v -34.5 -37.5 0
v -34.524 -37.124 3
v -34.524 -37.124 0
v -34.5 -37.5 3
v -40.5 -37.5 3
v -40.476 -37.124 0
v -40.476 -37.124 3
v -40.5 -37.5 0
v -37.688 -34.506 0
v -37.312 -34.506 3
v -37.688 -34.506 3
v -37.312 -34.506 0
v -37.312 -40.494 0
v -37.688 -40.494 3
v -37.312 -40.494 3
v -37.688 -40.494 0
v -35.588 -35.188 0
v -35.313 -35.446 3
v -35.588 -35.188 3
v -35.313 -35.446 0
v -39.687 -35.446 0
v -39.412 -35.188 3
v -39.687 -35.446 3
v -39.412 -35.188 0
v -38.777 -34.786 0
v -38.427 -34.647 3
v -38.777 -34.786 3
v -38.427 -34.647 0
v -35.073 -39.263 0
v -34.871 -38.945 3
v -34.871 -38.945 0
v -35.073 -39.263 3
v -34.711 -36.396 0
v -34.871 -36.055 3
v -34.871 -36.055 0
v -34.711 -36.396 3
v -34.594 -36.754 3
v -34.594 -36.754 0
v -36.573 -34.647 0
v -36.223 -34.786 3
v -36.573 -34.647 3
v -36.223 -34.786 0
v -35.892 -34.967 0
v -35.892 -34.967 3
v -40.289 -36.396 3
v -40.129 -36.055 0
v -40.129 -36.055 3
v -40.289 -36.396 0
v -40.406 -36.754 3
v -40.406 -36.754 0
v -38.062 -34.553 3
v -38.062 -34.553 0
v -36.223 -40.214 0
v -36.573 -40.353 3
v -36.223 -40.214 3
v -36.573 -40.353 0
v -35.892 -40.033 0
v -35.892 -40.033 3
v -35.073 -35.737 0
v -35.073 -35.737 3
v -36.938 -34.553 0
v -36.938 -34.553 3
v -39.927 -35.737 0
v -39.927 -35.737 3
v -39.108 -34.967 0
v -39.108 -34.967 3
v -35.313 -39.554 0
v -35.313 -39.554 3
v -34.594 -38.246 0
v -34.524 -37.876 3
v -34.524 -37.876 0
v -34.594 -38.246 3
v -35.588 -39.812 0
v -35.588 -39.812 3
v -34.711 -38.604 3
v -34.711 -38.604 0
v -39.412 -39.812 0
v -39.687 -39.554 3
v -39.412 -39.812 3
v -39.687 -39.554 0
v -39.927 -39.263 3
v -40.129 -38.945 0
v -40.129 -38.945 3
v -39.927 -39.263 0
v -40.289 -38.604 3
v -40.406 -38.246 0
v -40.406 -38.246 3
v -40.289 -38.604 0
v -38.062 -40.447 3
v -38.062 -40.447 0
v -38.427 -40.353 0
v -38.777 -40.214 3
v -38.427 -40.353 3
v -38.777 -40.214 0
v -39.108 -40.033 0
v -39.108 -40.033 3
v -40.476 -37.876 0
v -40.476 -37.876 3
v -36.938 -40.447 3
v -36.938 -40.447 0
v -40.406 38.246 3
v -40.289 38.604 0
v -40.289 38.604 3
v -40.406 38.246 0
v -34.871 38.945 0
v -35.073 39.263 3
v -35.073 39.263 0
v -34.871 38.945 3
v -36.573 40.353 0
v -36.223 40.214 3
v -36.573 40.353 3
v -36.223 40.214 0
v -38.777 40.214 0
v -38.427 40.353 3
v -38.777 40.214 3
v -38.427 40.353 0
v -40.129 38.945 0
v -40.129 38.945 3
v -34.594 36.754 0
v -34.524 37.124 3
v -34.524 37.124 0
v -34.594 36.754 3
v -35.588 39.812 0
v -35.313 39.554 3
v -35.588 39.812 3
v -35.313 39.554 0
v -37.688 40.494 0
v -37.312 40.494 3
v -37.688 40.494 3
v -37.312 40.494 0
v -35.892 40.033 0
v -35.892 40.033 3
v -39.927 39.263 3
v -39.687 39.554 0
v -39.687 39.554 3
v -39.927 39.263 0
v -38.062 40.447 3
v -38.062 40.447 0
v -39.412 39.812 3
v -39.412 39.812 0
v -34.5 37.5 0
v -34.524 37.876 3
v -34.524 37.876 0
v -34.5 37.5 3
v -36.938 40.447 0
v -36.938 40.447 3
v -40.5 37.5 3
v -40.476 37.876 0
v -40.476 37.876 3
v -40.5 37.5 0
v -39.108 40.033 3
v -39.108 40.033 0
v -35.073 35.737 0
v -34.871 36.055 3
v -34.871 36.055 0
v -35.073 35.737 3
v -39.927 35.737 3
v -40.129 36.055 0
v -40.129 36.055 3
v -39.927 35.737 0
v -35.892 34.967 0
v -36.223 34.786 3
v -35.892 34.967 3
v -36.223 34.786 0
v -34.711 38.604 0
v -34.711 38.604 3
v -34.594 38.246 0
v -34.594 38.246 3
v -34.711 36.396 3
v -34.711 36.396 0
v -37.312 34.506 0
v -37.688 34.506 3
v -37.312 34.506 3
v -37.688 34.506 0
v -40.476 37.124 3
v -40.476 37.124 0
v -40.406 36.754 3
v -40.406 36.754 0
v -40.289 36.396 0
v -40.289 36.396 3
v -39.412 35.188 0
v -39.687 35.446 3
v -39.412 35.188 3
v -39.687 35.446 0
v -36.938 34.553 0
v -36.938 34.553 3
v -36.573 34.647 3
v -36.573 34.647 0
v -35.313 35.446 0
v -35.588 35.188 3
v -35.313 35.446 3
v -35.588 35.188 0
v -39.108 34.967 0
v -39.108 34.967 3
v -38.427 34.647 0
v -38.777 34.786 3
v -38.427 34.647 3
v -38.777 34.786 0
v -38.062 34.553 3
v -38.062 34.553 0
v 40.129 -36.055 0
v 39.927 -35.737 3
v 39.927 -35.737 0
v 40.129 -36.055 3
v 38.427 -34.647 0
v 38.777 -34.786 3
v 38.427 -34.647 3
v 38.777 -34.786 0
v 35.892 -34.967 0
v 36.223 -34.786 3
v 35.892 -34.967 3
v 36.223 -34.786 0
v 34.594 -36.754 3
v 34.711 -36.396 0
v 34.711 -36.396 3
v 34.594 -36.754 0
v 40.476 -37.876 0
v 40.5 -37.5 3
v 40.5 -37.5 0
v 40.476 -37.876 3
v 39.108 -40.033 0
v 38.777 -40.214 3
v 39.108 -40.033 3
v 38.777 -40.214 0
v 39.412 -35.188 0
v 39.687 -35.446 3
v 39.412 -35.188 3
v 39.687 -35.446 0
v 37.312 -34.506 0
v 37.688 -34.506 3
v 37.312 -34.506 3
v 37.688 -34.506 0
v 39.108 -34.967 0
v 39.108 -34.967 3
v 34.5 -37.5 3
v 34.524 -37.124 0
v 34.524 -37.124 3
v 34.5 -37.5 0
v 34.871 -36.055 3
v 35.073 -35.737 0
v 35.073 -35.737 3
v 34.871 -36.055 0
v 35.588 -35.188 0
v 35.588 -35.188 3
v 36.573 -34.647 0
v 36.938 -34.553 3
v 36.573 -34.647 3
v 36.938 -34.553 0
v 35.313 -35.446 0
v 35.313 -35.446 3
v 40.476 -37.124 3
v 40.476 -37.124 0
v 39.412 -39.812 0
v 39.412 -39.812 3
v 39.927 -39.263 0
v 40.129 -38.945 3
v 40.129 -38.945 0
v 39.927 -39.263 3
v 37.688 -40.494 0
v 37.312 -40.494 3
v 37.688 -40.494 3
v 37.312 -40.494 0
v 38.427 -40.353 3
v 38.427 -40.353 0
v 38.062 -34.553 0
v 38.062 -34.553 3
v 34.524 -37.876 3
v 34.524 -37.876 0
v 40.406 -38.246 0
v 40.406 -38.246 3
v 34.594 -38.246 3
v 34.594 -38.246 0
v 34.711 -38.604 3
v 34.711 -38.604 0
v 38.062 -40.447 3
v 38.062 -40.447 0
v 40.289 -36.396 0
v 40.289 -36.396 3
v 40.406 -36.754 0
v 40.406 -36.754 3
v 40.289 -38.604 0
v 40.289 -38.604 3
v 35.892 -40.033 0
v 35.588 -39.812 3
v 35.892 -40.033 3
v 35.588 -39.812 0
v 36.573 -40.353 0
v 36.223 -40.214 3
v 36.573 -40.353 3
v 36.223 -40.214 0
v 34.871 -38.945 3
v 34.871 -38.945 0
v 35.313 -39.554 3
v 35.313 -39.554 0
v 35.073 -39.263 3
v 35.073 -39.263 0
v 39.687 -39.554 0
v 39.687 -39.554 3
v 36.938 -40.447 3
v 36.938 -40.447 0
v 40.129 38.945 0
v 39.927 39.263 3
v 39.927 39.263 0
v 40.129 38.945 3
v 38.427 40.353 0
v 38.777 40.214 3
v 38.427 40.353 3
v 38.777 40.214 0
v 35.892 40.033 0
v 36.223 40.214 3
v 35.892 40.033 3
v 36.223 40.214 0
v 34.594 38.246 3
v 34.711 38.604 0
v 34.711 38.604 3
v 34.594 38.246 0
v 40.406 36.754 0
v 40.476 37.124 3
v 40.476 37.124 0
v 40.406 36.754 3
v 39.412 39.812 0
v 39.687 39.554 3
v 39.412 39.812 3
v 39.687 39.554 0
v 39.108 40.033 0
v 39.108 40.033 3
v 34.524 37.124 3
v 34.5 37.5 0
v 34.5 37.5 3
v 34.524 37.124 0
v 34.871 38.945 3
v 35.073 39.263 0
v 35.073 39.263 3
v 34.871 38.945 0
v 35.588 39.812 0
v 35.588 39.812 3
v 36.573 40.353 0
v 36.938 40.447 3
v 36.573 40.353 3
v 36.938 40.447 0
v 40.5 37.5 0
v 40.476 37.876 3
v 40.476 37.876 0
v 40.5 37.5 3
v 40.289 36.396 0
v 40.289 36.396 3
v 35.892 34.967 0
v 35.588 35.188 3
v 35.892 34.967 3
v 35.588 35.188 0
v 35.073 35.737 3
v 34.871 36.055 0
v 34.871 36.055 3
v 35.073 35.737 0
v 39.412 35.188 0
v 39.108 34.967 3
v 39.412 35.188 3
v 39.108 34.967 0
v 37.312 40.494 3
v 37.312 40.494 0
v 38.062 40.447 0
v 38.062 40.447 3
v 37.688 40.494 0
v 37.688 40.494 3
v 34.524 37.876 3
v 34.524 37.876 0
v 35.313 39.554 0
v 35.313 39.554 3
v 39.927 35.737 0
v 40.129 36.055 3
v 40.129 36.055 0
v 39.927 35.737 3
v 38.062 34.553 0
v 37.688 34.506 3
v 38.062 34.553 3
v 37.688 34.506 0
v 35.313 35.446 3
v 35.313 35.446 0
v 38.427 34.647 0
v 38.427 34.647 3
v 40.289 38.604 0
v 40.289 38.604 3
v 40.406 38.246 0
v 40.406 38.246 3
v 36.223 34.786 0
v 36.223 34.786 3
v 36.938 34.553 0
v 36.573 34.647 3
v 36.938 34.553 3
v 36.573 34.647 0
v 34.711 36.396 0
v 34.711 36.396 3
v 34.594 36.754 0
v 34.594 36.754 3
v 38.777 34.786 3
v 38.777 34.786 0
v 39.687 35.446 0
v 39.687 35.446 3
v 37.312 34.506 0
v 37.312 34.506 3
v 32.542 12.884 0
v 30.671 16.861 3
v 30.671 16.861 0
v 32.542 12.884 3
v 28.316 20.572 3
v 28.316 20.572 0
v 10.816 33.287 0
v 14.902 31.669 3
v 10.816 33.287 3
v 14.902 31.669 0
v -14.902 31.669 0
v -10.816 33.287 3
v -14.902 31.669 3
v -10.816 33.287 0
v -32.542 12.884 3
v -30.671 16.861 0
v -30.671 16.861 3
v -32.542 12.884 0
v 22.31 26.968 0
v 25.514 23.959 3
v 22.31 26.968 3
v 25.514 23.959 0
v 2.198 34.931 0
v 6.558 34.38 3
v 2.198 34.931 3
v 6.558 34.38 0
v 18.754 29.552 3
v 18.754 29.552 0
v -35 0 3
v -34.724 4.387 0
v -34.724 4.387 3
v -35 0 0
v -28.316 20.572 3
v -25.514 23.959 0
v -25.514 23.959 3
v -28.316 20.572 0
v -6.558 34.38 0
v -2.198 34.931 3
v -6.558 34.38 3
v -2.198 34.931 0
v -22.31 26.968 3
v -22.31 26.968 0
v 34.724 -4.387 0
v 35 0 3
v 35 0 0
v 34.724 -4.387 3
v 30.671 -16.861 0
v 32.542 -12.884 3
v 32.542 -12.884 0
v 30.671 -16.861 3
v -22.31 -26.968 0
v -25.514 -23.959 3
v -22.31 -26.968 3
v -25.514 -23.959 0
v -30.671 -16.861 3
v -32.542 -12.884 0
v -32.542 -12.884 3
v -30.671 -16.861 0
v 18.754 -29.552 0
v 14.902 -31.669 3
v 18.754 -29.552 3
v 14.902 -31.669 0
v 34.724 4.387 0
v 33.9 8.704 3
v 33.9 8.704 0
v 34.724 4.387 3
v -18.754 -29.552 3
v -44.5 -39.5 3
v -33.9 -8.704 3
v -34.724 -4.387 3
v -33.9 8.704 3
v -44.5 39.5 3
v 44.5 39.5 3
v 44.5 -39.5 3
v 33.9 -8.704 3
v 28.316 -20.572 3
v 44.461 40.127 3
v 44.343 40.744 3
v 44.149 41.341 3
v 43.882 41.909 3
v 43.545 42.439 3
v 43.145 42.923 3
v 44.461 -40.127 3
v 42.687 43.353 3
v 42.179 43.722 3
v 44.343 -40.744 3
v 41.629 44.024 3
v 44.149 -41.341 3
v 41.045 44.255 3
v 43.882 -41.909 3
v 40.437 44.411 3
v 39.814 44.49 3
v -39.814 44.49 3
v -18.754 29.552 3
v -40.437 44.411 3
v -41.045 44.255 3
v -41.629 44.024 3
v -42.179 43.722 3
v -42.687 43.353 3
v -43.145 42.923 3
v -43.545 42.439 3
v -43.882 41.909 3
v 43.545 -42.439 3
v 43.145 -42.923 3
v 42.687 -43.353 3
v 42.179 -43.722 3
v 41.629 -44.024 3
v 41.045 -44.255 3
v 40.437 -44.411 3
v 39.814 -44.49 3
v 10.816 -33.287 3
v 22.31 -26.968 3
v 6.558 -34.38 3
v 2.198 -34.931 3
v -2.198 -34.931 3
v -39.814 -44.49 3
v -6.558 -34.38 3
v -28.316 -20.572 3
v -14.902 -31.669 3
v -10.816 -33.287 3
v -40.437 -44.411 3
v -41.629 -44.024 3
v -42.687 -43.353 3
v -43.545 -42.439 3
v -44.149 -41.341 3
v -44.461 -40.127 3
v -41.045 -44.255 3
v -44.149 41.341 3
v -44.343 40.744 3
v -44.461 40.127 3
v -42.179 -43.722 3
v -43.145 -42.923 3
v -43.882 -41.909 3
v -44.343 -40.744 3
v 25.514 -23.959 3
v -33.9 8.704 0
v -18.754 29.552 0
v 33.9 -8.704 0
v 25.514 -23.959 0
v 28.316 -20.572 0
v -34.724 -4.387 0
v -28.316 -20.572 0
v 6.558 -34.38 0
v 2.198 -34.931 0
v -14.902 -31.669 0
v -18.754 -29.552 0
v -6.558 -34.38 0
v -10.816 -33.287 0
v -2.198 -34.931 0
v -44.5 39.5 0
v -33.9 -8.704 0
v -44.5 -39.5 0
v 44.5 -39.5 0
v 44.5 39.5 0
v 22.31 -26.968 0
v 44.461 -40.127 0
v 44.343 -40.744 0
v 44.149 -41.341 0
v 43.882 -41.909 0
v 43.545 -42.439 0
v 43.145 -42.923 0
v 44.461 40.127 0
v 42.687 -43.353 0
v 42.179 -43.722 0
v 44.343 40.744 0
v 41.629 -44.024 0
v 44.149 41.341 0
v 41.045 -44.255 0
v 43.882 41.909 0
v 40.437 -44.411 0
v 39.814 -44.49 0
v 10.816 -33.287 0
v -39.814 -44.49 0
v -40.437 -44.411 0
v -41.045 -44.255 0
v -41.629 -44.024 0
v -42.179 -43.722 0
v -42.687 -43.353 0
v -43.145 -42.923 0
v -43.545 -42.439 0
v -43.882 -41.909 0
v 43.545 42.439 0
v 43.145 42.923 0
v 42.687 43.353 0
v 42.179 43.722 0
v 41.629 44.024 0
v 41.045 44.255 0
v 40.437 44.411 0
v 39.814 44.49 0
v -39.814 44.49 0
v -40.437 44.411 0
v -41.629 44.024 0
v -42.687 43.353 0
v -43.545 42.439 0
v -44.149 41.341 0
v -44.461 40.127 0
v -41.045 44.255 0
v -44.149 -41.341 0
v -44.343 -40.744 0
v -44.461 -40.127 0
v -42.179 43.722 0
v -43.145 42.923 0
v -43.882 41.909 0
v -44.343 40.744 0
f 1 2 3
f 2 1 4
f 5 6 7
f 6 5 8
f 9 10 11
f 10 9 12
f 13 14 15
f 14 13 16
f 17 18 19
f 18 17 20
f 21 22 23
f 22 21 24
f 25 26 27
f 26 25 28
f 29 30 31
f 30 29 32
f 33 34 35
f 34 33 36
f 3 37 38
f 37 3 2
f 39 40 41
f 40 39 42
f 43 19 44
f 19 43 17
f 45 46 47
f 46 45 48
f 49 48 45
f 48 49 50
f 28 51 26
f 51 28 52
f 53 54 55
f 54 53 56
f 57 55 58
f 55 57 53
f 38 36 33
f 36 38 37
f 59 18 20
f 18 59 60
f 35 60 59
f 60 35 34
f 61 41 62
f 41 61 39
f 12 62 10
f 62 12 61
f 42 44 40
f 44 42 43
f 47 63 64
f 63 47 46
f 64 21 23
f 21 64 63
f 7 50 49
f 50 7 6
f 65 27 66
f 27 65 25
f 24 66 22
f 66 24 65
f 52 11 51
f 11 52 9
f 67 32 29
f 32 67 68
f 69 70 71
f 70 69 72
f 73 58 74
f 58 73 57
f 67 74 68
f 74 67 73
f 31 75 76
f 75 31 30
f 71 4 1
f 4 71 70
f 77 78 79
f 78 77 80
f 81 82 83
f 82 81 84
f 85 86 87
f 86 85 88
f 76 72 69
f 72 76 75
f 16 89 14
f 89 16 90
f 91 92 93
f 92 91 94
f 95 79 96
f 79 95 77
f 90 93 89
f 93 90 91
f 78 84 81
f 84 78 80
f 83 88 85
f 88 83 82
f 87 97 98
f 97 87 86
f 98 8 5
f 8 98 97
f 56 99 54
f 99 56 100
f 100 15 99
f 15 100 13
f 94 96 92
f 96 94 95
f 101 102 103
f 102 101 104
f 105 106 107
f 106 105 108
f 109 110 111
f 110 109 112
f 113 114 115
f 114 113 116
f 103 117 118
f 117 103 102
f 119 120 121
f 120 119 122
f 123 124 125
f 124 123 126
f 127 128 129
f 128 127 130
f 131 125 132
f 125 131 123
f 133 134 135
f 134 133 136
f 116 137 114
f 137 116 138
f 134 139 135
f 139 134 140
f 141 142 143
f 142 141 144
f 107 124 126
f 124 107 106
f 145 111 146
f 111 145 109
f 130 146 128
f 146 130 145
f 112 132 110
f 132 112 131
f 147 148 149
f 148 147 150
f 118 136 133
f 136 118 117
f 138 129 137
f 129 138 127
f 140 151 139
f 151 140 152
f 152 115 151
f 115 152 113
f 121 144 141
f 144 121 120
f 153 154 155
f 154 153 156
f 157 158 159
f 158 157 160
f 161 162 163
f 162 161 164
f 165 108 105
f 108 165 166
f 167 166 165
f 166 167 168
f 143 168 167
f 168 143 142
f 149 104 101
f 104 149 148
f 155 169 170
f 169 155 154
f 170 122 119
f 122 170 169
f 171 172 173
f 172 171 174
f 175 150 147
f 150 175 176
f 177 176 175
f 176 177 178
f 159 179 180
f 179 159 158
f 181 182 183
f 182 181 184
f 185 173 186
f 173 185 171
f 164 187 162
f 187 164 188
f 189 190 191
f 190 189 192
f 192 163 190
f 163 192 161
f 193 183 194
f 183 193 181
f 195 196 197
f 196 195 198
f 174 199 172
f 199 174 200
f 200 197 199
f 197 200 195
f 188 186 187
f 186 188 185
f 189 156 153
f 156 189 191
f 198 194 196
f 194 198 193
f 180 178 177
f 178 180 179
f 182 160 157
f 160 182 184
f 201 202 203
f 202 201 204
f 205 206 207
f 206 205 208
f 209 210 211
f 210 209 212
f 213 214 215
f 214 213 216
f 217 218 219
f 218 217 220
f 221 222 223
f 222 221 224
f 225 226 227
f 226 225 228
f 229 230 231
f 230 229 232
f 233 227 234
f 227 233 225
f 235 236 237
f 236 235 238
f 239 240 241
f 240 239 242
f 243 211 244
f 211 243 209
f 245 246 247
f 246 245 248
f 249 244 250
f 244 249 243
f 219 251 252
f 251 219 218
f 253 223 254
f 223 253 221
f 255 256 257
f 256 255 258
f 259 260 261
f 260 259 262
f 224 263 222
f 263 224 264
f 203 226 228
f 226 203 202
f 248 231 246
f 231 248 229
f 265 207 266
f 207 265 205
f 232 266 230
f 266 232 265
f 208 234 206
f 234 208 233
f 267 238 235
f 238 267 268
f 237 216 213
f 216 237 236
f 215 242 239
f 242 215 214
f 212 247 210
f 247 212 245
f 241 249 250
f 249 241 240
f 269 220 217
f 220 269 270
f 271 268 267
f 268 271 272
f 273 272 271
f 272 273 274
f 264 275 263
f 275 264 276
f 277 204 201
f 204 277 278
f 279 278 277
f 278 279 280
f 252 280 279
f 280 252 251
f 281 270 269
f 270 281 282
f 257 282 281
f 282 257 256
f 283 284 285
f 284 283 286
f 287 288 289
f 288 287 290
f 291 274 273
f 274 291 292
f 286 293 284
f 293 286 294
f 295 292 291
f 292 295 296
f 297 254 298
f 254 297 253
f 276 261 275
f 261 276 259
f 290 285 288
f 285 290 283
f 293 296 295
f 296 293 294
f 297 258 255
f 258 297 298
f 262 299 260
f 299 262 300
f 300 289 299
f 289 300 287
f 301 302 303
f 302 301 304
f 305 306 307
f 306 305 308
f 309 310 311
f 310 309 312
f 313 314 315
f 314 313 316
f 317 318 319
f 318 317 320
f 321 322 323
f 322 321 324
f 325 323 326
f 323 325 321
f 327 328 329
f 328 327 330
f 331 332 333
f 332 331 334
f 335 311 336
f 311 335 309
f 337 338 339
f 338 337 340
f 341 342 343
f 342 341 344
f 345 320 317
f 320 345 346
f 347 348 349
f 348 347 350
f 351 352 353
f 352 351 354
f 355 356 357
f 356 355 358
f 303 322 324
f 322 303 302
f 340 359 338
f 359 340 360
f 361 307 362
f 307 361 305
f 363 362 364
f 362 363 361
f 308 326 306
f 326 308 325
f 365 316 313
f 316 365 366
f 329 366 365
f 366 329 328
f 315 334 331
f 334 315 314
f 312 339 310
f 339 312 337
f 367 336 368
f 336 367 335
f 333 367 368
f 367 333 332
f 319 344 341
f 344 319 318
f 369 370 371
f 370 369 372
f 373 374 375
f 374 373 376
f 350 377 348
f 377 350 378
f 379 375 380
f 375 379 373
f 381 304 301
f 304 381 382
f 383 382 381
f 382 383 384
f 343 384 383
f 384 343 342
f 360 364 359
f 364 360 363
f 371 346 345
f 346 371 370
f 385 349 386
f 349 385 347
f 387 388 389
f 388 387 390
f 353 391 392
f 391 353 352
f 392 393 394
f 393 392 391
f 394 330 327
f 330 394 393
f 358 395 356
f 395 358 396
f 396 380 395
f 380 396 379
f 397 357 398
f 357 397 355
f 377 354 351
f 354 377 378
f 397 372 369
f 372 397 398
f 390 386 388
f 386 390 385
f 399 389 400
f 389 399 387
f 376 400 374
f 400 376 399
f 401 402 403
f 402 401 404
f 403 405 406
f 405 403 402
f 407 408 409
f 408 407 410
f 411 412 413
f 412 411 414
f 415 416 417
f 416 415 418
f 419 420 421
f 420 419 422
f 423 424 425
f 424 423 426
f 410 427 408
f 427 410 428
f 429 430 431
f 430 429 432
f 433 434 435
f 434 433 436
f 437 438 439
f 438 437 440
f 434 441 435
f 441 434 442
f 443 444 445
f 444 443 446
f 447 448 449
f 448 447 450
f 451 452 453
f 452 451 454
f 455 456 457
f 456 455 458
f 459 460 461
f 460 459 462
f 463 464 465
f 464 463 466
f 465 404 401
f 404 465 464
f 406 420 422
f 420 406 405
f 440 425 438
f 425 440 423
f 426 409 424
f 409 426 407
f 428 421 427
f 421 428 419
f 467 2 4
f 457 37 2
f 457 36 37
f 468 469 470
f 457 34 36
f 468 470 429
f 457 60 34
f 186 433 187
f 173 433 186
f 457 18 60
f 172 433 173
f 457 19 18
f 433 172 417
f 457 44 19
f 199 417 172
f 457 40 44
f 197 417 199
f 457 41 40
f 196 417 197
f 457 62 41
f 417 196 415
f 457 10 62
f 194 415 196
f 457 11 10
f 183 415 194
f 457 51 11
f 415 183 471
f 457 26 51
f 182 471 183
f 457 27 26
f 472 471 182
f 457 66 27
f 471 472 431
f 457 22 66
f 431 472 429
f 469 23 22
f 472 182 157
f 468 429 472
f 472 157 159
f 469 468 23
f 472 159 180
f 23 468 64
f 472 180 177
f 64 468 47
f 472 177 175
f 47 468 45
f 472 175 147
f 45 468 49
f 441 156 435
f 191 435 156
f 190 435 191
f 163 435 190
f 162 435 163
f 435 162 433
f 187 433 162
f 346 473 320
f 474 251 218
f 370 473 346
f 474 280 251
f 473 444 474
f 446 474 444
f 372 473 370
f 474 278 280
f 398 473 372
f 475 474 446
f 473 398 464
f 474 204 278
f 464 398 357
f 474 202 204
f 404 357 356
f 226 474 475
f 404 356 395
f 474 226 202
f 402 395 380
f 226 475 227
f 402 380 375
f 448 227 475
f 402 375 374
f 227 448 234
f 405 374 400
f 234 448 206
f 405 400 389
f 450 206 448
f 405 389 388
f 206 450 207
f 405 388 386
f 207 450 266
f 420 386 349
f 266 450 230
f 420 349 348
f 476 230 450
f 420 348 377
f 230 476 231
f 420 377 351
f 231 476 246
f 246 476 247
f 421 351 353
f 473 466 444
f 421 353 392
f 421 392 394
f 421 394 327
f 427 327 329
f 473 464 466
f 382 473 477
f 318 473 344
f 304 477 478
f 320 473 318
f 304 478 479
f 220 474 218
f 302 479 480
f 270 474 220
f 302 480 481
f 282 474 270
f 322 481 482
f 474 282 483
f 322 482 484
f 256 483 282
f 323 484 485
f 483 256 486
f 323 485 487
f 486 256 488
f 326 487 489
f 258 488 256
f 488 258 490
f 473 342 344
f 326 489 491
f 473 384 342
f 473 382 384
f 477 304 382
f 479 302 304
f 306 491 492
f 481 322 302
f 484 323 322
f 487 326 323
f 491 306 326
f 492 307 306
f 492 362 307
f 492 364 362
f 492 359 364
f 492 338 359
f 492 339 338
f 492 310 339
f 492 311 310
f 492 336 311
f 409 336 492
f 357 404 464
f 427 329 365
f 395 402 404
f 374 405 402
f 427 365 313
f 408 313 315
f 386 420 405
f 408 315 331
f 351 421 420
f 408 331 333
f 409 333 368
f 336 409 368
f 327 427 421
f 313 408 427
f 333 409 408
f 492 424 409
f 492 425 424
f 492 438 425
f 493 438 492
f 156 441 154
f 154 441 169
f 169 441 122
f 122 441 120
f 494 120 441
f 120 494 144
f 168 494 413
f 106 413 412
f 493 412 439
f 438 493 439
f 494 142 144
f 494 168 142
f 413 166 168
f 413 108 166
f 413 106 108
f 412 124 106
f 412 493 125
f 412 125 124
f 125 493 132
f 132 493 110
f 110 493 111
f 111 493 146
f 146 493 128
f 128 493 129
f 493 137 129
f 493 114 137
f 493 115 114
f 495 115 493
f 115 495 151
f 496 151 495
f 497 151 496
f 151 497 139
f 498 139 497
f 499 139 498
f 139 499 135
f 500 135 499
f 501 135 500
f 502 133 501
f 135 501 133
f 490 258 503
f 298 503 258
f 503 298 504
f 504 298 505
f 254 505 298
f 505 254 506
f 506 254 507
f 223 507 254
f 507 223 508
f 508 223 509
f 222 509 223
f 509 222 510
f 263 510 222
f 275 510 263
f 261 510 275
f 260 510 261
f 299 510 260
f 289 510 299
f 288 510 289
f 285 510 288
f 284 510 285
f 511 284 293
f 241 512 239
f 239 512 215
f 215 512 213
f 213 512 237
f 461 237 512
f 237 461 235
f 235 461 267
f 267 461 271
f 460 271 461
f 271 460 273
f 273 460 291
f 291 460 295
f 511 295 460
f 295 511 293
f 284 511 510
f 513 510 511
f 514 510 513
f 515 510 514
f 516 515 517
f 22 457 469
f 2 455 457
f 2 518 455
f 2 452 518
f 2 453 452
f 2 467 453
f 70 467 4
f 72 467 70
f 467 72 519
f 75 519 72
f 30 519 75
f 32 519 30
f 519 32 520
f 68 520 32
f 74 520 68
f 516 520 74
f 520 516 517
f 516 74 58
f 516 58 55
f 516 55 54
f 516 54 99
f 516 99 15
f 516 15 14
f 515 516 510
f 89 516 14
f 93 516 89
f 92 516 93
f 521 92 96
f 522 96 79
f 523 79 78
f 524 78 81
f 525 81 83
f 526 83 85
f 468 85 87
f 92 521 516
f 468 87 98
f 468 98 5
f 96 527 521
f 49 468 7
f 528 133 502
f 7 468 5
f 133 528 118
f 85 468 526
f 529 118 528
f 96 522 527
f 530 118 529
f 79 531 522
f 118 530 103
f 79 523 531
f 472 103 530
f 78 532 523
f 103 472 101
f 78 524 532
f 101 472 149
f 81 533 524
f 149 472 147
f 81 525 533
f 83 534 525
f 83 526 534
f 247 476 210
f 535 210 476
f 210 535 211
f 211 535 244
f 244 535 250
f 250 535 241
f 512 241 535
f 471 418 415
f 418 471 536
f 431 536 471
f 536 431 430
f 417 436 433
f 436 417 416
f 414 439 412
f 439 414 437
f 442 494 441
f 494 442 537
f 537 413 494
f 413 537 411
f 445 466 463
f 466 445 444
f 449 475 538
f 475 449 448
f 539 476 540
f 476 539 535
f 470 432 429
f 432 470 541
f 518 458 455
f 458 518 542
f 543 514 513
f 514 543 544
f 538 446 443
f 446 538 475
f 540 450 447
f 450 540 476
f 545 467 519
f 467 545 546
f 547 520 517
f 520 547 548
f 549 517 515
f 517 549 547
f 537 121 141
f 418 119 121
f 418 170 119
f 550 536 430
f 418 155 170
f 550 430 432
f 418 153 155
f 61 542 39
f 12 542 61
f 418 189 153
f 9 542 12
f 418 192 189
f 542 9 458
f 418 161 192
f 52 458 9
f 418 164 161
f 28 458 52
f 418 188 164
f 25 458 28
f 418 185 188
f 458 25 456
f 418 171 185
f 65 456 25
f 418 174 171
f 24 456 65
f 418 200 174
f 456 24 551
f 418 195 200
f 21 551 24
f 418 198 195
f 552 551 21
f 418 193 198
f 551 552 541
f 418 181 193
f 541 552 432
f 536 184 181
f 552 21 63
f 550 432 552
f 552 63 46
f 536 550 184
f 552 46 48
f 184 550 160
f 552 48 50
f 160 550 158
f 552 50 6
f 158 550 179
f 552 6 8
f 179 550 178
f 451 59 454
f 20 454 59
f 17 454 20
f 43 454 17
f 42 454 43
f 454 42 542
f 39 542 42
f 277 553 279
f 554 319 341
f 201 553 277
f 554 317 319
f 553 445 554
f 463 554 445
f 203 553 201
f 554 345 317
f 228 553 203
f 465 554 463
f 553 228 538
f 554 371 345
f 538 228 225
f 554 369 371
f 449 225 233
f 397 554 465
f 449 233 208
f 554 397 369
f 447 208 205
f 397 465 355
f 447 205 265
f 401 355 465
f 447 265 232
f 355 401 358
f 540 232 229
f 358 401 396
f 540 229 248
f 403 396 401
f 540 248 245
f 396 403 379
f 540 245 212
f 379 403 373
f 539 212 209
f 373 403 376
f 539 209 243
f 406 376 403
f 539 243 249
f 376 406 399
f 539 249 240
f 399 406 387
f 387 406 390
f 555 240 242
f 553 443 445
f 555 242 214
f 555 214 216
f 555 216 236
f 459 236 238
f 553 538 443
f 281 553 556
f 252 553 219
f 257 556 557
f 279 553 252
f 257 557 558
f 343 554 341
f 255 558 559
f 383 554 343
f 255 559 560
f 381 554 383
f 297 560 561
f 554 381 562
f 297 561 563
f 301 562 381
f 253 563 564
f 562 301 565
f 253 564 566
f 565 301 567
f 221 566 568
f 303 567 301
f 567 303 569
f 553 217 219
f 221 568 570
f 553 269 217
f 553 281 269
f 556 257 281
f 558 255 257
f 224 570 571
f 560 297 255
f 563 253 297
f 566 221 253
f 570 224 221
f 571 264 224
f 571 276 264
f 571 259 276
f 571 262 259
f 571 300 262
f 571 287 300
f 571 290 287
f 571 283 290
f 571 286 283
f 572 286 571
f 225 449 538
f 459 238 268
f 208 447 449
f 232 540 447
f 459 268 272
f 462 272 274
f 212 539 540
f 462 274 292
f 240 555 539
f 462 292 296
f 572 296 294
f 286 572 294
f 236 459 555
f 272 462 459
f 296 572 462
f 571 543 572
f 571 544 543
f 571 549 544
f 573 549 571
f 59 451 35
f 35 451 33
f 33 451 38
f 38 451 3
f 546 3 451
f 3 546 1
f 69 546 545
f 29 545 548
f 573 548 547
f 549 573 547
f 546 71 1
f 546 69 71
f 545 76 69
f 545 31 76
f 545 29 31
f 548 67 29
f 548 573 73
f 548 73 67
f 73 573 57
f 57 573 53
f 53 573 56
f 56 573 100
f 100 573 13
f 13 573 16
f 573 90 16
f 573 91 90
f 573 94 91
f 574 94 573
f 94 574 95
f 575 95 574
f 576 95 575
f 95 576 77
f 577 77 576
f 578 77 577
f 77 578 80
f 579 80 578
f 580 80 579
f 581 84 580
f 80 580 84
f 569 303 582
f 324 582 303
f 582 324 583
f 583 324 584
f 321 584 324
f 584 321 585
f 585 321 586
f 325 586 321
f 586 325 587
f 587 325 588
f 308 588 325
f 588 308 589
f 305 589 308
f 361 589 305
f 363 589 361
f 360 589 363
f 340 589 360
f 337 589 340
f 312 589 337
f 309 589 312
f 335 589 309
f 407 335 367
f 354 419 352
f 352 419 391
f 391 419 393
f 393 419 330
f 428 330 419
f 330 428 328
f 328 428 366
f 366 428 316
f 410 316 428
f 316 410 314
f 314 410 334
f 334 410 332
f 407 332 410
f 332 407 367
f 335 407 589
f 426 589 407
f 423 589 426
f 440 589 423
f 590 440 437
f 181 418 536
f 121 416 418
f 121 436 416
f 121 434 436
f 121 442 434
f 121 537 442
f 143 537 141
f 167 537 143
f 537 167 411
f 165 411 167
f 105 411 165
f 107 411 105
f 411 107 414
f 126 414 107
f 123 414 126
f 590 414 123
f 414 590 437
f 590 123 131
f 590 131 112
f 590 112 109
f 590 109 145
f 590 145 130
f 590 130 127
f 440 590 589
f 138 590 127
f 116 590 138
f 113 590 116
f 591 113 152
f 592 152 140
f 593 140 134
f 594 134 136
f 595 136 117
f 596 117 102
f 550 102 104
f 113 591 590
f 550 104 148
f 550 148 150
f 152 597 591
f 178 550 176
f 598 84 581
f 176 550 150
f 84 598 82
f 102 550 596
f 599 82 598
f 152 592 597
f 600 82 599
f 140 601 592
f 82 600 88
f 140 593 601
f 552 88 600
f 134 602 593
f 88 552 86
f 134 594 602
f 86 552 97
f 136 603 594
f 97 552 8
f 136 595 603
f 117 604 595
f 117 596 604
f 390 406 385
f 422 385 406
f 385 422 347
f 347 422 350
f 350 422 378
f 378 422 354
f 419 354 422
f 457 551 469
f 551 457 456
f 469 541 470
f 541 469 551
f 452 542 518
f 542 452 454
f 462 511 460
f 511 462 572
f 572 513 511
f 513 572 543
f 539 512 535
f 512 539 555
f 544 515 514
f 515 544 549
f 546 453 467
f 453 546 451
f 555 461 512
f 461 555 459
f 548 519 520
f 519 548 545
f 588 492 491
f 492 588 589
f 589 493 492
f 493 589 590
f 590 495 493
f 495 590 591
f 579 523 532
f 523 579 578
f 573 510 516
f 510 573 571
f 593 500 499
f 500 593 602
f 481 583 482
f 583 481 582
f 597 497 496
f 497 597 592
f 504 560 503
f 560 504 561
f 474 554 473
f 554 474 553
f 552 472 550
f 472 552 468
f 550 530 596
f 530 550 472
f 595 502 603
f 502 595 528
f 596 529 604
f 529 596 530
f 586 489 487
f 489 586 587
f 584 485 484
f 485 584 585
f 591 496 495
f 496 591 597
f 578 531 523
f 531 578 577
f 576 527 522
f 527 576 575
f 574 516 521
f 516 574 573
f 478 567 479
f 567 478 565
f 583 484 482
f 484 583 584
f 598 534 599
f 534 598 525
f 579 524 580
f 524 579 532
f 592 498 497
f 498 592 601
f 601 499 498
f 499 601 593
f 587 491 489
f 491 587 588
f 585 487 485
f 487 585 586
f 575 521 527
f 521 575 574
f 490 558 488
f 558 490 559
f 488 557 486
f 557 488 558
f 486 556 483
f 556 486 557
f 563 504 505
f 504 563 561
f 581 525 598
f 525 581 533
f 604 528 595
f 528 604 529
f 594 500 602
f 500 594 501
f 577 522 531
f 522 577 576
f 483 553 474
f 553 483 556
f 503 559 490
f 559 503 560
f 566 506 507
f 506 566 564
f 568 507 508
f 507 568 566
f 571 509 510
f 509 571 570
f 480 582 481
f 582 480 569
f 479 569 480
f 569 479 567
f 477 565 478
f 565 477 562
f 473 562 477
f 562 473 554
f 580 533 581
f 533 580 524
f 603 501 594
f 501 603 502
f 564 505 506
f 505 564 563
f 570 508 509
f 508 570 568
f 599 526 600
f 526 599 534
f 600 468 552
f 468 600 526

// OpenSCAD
$fn = 50;


difference() {
	union() {
		hull() {
			translate(v = [-39.5000000000, 39.5000000000, 0]) {
				cylinder(h = 3, r = 5);
			}
			translate(v = [39.5000000000, 39.5000000000, 0]) {
				cylinder(h = 3, r = 5);
			}
			translate(v = [-39.5000000000, -39.5000000000, 0]) {
				cylinder(h = 3, r = 5);
			}
			translate(v = [39.5000000000, -39.5000000000, 0]) {
				cylinder(h = 3, r = 5);
			}
		}
	}
	union() {
		#translate(v = [-37.5000000000, -37.5000000000, -100.0000000000]) {
			cylinder(h = 200, r = 3.0000000000);
		}
		#translate(v = [-37.5000000000, 37.5000000000, -100.0000000000]) {
			cylinder(h = 200, r = 3.0000000000);
		}
		#translate(v = [37.5000000000, -37.5000000000, -100.0000000000]) {
			cylinder(h = 200, r = 3.0000000000);
		}
		#translate(v = [37.5000000000, 37.5000000000, -100.0000000000]) {
			cylinder(h = 200, r = 3.0000000000);
		}
		#cylinder(h = 3, r = 35.0000000000);
	}
}
